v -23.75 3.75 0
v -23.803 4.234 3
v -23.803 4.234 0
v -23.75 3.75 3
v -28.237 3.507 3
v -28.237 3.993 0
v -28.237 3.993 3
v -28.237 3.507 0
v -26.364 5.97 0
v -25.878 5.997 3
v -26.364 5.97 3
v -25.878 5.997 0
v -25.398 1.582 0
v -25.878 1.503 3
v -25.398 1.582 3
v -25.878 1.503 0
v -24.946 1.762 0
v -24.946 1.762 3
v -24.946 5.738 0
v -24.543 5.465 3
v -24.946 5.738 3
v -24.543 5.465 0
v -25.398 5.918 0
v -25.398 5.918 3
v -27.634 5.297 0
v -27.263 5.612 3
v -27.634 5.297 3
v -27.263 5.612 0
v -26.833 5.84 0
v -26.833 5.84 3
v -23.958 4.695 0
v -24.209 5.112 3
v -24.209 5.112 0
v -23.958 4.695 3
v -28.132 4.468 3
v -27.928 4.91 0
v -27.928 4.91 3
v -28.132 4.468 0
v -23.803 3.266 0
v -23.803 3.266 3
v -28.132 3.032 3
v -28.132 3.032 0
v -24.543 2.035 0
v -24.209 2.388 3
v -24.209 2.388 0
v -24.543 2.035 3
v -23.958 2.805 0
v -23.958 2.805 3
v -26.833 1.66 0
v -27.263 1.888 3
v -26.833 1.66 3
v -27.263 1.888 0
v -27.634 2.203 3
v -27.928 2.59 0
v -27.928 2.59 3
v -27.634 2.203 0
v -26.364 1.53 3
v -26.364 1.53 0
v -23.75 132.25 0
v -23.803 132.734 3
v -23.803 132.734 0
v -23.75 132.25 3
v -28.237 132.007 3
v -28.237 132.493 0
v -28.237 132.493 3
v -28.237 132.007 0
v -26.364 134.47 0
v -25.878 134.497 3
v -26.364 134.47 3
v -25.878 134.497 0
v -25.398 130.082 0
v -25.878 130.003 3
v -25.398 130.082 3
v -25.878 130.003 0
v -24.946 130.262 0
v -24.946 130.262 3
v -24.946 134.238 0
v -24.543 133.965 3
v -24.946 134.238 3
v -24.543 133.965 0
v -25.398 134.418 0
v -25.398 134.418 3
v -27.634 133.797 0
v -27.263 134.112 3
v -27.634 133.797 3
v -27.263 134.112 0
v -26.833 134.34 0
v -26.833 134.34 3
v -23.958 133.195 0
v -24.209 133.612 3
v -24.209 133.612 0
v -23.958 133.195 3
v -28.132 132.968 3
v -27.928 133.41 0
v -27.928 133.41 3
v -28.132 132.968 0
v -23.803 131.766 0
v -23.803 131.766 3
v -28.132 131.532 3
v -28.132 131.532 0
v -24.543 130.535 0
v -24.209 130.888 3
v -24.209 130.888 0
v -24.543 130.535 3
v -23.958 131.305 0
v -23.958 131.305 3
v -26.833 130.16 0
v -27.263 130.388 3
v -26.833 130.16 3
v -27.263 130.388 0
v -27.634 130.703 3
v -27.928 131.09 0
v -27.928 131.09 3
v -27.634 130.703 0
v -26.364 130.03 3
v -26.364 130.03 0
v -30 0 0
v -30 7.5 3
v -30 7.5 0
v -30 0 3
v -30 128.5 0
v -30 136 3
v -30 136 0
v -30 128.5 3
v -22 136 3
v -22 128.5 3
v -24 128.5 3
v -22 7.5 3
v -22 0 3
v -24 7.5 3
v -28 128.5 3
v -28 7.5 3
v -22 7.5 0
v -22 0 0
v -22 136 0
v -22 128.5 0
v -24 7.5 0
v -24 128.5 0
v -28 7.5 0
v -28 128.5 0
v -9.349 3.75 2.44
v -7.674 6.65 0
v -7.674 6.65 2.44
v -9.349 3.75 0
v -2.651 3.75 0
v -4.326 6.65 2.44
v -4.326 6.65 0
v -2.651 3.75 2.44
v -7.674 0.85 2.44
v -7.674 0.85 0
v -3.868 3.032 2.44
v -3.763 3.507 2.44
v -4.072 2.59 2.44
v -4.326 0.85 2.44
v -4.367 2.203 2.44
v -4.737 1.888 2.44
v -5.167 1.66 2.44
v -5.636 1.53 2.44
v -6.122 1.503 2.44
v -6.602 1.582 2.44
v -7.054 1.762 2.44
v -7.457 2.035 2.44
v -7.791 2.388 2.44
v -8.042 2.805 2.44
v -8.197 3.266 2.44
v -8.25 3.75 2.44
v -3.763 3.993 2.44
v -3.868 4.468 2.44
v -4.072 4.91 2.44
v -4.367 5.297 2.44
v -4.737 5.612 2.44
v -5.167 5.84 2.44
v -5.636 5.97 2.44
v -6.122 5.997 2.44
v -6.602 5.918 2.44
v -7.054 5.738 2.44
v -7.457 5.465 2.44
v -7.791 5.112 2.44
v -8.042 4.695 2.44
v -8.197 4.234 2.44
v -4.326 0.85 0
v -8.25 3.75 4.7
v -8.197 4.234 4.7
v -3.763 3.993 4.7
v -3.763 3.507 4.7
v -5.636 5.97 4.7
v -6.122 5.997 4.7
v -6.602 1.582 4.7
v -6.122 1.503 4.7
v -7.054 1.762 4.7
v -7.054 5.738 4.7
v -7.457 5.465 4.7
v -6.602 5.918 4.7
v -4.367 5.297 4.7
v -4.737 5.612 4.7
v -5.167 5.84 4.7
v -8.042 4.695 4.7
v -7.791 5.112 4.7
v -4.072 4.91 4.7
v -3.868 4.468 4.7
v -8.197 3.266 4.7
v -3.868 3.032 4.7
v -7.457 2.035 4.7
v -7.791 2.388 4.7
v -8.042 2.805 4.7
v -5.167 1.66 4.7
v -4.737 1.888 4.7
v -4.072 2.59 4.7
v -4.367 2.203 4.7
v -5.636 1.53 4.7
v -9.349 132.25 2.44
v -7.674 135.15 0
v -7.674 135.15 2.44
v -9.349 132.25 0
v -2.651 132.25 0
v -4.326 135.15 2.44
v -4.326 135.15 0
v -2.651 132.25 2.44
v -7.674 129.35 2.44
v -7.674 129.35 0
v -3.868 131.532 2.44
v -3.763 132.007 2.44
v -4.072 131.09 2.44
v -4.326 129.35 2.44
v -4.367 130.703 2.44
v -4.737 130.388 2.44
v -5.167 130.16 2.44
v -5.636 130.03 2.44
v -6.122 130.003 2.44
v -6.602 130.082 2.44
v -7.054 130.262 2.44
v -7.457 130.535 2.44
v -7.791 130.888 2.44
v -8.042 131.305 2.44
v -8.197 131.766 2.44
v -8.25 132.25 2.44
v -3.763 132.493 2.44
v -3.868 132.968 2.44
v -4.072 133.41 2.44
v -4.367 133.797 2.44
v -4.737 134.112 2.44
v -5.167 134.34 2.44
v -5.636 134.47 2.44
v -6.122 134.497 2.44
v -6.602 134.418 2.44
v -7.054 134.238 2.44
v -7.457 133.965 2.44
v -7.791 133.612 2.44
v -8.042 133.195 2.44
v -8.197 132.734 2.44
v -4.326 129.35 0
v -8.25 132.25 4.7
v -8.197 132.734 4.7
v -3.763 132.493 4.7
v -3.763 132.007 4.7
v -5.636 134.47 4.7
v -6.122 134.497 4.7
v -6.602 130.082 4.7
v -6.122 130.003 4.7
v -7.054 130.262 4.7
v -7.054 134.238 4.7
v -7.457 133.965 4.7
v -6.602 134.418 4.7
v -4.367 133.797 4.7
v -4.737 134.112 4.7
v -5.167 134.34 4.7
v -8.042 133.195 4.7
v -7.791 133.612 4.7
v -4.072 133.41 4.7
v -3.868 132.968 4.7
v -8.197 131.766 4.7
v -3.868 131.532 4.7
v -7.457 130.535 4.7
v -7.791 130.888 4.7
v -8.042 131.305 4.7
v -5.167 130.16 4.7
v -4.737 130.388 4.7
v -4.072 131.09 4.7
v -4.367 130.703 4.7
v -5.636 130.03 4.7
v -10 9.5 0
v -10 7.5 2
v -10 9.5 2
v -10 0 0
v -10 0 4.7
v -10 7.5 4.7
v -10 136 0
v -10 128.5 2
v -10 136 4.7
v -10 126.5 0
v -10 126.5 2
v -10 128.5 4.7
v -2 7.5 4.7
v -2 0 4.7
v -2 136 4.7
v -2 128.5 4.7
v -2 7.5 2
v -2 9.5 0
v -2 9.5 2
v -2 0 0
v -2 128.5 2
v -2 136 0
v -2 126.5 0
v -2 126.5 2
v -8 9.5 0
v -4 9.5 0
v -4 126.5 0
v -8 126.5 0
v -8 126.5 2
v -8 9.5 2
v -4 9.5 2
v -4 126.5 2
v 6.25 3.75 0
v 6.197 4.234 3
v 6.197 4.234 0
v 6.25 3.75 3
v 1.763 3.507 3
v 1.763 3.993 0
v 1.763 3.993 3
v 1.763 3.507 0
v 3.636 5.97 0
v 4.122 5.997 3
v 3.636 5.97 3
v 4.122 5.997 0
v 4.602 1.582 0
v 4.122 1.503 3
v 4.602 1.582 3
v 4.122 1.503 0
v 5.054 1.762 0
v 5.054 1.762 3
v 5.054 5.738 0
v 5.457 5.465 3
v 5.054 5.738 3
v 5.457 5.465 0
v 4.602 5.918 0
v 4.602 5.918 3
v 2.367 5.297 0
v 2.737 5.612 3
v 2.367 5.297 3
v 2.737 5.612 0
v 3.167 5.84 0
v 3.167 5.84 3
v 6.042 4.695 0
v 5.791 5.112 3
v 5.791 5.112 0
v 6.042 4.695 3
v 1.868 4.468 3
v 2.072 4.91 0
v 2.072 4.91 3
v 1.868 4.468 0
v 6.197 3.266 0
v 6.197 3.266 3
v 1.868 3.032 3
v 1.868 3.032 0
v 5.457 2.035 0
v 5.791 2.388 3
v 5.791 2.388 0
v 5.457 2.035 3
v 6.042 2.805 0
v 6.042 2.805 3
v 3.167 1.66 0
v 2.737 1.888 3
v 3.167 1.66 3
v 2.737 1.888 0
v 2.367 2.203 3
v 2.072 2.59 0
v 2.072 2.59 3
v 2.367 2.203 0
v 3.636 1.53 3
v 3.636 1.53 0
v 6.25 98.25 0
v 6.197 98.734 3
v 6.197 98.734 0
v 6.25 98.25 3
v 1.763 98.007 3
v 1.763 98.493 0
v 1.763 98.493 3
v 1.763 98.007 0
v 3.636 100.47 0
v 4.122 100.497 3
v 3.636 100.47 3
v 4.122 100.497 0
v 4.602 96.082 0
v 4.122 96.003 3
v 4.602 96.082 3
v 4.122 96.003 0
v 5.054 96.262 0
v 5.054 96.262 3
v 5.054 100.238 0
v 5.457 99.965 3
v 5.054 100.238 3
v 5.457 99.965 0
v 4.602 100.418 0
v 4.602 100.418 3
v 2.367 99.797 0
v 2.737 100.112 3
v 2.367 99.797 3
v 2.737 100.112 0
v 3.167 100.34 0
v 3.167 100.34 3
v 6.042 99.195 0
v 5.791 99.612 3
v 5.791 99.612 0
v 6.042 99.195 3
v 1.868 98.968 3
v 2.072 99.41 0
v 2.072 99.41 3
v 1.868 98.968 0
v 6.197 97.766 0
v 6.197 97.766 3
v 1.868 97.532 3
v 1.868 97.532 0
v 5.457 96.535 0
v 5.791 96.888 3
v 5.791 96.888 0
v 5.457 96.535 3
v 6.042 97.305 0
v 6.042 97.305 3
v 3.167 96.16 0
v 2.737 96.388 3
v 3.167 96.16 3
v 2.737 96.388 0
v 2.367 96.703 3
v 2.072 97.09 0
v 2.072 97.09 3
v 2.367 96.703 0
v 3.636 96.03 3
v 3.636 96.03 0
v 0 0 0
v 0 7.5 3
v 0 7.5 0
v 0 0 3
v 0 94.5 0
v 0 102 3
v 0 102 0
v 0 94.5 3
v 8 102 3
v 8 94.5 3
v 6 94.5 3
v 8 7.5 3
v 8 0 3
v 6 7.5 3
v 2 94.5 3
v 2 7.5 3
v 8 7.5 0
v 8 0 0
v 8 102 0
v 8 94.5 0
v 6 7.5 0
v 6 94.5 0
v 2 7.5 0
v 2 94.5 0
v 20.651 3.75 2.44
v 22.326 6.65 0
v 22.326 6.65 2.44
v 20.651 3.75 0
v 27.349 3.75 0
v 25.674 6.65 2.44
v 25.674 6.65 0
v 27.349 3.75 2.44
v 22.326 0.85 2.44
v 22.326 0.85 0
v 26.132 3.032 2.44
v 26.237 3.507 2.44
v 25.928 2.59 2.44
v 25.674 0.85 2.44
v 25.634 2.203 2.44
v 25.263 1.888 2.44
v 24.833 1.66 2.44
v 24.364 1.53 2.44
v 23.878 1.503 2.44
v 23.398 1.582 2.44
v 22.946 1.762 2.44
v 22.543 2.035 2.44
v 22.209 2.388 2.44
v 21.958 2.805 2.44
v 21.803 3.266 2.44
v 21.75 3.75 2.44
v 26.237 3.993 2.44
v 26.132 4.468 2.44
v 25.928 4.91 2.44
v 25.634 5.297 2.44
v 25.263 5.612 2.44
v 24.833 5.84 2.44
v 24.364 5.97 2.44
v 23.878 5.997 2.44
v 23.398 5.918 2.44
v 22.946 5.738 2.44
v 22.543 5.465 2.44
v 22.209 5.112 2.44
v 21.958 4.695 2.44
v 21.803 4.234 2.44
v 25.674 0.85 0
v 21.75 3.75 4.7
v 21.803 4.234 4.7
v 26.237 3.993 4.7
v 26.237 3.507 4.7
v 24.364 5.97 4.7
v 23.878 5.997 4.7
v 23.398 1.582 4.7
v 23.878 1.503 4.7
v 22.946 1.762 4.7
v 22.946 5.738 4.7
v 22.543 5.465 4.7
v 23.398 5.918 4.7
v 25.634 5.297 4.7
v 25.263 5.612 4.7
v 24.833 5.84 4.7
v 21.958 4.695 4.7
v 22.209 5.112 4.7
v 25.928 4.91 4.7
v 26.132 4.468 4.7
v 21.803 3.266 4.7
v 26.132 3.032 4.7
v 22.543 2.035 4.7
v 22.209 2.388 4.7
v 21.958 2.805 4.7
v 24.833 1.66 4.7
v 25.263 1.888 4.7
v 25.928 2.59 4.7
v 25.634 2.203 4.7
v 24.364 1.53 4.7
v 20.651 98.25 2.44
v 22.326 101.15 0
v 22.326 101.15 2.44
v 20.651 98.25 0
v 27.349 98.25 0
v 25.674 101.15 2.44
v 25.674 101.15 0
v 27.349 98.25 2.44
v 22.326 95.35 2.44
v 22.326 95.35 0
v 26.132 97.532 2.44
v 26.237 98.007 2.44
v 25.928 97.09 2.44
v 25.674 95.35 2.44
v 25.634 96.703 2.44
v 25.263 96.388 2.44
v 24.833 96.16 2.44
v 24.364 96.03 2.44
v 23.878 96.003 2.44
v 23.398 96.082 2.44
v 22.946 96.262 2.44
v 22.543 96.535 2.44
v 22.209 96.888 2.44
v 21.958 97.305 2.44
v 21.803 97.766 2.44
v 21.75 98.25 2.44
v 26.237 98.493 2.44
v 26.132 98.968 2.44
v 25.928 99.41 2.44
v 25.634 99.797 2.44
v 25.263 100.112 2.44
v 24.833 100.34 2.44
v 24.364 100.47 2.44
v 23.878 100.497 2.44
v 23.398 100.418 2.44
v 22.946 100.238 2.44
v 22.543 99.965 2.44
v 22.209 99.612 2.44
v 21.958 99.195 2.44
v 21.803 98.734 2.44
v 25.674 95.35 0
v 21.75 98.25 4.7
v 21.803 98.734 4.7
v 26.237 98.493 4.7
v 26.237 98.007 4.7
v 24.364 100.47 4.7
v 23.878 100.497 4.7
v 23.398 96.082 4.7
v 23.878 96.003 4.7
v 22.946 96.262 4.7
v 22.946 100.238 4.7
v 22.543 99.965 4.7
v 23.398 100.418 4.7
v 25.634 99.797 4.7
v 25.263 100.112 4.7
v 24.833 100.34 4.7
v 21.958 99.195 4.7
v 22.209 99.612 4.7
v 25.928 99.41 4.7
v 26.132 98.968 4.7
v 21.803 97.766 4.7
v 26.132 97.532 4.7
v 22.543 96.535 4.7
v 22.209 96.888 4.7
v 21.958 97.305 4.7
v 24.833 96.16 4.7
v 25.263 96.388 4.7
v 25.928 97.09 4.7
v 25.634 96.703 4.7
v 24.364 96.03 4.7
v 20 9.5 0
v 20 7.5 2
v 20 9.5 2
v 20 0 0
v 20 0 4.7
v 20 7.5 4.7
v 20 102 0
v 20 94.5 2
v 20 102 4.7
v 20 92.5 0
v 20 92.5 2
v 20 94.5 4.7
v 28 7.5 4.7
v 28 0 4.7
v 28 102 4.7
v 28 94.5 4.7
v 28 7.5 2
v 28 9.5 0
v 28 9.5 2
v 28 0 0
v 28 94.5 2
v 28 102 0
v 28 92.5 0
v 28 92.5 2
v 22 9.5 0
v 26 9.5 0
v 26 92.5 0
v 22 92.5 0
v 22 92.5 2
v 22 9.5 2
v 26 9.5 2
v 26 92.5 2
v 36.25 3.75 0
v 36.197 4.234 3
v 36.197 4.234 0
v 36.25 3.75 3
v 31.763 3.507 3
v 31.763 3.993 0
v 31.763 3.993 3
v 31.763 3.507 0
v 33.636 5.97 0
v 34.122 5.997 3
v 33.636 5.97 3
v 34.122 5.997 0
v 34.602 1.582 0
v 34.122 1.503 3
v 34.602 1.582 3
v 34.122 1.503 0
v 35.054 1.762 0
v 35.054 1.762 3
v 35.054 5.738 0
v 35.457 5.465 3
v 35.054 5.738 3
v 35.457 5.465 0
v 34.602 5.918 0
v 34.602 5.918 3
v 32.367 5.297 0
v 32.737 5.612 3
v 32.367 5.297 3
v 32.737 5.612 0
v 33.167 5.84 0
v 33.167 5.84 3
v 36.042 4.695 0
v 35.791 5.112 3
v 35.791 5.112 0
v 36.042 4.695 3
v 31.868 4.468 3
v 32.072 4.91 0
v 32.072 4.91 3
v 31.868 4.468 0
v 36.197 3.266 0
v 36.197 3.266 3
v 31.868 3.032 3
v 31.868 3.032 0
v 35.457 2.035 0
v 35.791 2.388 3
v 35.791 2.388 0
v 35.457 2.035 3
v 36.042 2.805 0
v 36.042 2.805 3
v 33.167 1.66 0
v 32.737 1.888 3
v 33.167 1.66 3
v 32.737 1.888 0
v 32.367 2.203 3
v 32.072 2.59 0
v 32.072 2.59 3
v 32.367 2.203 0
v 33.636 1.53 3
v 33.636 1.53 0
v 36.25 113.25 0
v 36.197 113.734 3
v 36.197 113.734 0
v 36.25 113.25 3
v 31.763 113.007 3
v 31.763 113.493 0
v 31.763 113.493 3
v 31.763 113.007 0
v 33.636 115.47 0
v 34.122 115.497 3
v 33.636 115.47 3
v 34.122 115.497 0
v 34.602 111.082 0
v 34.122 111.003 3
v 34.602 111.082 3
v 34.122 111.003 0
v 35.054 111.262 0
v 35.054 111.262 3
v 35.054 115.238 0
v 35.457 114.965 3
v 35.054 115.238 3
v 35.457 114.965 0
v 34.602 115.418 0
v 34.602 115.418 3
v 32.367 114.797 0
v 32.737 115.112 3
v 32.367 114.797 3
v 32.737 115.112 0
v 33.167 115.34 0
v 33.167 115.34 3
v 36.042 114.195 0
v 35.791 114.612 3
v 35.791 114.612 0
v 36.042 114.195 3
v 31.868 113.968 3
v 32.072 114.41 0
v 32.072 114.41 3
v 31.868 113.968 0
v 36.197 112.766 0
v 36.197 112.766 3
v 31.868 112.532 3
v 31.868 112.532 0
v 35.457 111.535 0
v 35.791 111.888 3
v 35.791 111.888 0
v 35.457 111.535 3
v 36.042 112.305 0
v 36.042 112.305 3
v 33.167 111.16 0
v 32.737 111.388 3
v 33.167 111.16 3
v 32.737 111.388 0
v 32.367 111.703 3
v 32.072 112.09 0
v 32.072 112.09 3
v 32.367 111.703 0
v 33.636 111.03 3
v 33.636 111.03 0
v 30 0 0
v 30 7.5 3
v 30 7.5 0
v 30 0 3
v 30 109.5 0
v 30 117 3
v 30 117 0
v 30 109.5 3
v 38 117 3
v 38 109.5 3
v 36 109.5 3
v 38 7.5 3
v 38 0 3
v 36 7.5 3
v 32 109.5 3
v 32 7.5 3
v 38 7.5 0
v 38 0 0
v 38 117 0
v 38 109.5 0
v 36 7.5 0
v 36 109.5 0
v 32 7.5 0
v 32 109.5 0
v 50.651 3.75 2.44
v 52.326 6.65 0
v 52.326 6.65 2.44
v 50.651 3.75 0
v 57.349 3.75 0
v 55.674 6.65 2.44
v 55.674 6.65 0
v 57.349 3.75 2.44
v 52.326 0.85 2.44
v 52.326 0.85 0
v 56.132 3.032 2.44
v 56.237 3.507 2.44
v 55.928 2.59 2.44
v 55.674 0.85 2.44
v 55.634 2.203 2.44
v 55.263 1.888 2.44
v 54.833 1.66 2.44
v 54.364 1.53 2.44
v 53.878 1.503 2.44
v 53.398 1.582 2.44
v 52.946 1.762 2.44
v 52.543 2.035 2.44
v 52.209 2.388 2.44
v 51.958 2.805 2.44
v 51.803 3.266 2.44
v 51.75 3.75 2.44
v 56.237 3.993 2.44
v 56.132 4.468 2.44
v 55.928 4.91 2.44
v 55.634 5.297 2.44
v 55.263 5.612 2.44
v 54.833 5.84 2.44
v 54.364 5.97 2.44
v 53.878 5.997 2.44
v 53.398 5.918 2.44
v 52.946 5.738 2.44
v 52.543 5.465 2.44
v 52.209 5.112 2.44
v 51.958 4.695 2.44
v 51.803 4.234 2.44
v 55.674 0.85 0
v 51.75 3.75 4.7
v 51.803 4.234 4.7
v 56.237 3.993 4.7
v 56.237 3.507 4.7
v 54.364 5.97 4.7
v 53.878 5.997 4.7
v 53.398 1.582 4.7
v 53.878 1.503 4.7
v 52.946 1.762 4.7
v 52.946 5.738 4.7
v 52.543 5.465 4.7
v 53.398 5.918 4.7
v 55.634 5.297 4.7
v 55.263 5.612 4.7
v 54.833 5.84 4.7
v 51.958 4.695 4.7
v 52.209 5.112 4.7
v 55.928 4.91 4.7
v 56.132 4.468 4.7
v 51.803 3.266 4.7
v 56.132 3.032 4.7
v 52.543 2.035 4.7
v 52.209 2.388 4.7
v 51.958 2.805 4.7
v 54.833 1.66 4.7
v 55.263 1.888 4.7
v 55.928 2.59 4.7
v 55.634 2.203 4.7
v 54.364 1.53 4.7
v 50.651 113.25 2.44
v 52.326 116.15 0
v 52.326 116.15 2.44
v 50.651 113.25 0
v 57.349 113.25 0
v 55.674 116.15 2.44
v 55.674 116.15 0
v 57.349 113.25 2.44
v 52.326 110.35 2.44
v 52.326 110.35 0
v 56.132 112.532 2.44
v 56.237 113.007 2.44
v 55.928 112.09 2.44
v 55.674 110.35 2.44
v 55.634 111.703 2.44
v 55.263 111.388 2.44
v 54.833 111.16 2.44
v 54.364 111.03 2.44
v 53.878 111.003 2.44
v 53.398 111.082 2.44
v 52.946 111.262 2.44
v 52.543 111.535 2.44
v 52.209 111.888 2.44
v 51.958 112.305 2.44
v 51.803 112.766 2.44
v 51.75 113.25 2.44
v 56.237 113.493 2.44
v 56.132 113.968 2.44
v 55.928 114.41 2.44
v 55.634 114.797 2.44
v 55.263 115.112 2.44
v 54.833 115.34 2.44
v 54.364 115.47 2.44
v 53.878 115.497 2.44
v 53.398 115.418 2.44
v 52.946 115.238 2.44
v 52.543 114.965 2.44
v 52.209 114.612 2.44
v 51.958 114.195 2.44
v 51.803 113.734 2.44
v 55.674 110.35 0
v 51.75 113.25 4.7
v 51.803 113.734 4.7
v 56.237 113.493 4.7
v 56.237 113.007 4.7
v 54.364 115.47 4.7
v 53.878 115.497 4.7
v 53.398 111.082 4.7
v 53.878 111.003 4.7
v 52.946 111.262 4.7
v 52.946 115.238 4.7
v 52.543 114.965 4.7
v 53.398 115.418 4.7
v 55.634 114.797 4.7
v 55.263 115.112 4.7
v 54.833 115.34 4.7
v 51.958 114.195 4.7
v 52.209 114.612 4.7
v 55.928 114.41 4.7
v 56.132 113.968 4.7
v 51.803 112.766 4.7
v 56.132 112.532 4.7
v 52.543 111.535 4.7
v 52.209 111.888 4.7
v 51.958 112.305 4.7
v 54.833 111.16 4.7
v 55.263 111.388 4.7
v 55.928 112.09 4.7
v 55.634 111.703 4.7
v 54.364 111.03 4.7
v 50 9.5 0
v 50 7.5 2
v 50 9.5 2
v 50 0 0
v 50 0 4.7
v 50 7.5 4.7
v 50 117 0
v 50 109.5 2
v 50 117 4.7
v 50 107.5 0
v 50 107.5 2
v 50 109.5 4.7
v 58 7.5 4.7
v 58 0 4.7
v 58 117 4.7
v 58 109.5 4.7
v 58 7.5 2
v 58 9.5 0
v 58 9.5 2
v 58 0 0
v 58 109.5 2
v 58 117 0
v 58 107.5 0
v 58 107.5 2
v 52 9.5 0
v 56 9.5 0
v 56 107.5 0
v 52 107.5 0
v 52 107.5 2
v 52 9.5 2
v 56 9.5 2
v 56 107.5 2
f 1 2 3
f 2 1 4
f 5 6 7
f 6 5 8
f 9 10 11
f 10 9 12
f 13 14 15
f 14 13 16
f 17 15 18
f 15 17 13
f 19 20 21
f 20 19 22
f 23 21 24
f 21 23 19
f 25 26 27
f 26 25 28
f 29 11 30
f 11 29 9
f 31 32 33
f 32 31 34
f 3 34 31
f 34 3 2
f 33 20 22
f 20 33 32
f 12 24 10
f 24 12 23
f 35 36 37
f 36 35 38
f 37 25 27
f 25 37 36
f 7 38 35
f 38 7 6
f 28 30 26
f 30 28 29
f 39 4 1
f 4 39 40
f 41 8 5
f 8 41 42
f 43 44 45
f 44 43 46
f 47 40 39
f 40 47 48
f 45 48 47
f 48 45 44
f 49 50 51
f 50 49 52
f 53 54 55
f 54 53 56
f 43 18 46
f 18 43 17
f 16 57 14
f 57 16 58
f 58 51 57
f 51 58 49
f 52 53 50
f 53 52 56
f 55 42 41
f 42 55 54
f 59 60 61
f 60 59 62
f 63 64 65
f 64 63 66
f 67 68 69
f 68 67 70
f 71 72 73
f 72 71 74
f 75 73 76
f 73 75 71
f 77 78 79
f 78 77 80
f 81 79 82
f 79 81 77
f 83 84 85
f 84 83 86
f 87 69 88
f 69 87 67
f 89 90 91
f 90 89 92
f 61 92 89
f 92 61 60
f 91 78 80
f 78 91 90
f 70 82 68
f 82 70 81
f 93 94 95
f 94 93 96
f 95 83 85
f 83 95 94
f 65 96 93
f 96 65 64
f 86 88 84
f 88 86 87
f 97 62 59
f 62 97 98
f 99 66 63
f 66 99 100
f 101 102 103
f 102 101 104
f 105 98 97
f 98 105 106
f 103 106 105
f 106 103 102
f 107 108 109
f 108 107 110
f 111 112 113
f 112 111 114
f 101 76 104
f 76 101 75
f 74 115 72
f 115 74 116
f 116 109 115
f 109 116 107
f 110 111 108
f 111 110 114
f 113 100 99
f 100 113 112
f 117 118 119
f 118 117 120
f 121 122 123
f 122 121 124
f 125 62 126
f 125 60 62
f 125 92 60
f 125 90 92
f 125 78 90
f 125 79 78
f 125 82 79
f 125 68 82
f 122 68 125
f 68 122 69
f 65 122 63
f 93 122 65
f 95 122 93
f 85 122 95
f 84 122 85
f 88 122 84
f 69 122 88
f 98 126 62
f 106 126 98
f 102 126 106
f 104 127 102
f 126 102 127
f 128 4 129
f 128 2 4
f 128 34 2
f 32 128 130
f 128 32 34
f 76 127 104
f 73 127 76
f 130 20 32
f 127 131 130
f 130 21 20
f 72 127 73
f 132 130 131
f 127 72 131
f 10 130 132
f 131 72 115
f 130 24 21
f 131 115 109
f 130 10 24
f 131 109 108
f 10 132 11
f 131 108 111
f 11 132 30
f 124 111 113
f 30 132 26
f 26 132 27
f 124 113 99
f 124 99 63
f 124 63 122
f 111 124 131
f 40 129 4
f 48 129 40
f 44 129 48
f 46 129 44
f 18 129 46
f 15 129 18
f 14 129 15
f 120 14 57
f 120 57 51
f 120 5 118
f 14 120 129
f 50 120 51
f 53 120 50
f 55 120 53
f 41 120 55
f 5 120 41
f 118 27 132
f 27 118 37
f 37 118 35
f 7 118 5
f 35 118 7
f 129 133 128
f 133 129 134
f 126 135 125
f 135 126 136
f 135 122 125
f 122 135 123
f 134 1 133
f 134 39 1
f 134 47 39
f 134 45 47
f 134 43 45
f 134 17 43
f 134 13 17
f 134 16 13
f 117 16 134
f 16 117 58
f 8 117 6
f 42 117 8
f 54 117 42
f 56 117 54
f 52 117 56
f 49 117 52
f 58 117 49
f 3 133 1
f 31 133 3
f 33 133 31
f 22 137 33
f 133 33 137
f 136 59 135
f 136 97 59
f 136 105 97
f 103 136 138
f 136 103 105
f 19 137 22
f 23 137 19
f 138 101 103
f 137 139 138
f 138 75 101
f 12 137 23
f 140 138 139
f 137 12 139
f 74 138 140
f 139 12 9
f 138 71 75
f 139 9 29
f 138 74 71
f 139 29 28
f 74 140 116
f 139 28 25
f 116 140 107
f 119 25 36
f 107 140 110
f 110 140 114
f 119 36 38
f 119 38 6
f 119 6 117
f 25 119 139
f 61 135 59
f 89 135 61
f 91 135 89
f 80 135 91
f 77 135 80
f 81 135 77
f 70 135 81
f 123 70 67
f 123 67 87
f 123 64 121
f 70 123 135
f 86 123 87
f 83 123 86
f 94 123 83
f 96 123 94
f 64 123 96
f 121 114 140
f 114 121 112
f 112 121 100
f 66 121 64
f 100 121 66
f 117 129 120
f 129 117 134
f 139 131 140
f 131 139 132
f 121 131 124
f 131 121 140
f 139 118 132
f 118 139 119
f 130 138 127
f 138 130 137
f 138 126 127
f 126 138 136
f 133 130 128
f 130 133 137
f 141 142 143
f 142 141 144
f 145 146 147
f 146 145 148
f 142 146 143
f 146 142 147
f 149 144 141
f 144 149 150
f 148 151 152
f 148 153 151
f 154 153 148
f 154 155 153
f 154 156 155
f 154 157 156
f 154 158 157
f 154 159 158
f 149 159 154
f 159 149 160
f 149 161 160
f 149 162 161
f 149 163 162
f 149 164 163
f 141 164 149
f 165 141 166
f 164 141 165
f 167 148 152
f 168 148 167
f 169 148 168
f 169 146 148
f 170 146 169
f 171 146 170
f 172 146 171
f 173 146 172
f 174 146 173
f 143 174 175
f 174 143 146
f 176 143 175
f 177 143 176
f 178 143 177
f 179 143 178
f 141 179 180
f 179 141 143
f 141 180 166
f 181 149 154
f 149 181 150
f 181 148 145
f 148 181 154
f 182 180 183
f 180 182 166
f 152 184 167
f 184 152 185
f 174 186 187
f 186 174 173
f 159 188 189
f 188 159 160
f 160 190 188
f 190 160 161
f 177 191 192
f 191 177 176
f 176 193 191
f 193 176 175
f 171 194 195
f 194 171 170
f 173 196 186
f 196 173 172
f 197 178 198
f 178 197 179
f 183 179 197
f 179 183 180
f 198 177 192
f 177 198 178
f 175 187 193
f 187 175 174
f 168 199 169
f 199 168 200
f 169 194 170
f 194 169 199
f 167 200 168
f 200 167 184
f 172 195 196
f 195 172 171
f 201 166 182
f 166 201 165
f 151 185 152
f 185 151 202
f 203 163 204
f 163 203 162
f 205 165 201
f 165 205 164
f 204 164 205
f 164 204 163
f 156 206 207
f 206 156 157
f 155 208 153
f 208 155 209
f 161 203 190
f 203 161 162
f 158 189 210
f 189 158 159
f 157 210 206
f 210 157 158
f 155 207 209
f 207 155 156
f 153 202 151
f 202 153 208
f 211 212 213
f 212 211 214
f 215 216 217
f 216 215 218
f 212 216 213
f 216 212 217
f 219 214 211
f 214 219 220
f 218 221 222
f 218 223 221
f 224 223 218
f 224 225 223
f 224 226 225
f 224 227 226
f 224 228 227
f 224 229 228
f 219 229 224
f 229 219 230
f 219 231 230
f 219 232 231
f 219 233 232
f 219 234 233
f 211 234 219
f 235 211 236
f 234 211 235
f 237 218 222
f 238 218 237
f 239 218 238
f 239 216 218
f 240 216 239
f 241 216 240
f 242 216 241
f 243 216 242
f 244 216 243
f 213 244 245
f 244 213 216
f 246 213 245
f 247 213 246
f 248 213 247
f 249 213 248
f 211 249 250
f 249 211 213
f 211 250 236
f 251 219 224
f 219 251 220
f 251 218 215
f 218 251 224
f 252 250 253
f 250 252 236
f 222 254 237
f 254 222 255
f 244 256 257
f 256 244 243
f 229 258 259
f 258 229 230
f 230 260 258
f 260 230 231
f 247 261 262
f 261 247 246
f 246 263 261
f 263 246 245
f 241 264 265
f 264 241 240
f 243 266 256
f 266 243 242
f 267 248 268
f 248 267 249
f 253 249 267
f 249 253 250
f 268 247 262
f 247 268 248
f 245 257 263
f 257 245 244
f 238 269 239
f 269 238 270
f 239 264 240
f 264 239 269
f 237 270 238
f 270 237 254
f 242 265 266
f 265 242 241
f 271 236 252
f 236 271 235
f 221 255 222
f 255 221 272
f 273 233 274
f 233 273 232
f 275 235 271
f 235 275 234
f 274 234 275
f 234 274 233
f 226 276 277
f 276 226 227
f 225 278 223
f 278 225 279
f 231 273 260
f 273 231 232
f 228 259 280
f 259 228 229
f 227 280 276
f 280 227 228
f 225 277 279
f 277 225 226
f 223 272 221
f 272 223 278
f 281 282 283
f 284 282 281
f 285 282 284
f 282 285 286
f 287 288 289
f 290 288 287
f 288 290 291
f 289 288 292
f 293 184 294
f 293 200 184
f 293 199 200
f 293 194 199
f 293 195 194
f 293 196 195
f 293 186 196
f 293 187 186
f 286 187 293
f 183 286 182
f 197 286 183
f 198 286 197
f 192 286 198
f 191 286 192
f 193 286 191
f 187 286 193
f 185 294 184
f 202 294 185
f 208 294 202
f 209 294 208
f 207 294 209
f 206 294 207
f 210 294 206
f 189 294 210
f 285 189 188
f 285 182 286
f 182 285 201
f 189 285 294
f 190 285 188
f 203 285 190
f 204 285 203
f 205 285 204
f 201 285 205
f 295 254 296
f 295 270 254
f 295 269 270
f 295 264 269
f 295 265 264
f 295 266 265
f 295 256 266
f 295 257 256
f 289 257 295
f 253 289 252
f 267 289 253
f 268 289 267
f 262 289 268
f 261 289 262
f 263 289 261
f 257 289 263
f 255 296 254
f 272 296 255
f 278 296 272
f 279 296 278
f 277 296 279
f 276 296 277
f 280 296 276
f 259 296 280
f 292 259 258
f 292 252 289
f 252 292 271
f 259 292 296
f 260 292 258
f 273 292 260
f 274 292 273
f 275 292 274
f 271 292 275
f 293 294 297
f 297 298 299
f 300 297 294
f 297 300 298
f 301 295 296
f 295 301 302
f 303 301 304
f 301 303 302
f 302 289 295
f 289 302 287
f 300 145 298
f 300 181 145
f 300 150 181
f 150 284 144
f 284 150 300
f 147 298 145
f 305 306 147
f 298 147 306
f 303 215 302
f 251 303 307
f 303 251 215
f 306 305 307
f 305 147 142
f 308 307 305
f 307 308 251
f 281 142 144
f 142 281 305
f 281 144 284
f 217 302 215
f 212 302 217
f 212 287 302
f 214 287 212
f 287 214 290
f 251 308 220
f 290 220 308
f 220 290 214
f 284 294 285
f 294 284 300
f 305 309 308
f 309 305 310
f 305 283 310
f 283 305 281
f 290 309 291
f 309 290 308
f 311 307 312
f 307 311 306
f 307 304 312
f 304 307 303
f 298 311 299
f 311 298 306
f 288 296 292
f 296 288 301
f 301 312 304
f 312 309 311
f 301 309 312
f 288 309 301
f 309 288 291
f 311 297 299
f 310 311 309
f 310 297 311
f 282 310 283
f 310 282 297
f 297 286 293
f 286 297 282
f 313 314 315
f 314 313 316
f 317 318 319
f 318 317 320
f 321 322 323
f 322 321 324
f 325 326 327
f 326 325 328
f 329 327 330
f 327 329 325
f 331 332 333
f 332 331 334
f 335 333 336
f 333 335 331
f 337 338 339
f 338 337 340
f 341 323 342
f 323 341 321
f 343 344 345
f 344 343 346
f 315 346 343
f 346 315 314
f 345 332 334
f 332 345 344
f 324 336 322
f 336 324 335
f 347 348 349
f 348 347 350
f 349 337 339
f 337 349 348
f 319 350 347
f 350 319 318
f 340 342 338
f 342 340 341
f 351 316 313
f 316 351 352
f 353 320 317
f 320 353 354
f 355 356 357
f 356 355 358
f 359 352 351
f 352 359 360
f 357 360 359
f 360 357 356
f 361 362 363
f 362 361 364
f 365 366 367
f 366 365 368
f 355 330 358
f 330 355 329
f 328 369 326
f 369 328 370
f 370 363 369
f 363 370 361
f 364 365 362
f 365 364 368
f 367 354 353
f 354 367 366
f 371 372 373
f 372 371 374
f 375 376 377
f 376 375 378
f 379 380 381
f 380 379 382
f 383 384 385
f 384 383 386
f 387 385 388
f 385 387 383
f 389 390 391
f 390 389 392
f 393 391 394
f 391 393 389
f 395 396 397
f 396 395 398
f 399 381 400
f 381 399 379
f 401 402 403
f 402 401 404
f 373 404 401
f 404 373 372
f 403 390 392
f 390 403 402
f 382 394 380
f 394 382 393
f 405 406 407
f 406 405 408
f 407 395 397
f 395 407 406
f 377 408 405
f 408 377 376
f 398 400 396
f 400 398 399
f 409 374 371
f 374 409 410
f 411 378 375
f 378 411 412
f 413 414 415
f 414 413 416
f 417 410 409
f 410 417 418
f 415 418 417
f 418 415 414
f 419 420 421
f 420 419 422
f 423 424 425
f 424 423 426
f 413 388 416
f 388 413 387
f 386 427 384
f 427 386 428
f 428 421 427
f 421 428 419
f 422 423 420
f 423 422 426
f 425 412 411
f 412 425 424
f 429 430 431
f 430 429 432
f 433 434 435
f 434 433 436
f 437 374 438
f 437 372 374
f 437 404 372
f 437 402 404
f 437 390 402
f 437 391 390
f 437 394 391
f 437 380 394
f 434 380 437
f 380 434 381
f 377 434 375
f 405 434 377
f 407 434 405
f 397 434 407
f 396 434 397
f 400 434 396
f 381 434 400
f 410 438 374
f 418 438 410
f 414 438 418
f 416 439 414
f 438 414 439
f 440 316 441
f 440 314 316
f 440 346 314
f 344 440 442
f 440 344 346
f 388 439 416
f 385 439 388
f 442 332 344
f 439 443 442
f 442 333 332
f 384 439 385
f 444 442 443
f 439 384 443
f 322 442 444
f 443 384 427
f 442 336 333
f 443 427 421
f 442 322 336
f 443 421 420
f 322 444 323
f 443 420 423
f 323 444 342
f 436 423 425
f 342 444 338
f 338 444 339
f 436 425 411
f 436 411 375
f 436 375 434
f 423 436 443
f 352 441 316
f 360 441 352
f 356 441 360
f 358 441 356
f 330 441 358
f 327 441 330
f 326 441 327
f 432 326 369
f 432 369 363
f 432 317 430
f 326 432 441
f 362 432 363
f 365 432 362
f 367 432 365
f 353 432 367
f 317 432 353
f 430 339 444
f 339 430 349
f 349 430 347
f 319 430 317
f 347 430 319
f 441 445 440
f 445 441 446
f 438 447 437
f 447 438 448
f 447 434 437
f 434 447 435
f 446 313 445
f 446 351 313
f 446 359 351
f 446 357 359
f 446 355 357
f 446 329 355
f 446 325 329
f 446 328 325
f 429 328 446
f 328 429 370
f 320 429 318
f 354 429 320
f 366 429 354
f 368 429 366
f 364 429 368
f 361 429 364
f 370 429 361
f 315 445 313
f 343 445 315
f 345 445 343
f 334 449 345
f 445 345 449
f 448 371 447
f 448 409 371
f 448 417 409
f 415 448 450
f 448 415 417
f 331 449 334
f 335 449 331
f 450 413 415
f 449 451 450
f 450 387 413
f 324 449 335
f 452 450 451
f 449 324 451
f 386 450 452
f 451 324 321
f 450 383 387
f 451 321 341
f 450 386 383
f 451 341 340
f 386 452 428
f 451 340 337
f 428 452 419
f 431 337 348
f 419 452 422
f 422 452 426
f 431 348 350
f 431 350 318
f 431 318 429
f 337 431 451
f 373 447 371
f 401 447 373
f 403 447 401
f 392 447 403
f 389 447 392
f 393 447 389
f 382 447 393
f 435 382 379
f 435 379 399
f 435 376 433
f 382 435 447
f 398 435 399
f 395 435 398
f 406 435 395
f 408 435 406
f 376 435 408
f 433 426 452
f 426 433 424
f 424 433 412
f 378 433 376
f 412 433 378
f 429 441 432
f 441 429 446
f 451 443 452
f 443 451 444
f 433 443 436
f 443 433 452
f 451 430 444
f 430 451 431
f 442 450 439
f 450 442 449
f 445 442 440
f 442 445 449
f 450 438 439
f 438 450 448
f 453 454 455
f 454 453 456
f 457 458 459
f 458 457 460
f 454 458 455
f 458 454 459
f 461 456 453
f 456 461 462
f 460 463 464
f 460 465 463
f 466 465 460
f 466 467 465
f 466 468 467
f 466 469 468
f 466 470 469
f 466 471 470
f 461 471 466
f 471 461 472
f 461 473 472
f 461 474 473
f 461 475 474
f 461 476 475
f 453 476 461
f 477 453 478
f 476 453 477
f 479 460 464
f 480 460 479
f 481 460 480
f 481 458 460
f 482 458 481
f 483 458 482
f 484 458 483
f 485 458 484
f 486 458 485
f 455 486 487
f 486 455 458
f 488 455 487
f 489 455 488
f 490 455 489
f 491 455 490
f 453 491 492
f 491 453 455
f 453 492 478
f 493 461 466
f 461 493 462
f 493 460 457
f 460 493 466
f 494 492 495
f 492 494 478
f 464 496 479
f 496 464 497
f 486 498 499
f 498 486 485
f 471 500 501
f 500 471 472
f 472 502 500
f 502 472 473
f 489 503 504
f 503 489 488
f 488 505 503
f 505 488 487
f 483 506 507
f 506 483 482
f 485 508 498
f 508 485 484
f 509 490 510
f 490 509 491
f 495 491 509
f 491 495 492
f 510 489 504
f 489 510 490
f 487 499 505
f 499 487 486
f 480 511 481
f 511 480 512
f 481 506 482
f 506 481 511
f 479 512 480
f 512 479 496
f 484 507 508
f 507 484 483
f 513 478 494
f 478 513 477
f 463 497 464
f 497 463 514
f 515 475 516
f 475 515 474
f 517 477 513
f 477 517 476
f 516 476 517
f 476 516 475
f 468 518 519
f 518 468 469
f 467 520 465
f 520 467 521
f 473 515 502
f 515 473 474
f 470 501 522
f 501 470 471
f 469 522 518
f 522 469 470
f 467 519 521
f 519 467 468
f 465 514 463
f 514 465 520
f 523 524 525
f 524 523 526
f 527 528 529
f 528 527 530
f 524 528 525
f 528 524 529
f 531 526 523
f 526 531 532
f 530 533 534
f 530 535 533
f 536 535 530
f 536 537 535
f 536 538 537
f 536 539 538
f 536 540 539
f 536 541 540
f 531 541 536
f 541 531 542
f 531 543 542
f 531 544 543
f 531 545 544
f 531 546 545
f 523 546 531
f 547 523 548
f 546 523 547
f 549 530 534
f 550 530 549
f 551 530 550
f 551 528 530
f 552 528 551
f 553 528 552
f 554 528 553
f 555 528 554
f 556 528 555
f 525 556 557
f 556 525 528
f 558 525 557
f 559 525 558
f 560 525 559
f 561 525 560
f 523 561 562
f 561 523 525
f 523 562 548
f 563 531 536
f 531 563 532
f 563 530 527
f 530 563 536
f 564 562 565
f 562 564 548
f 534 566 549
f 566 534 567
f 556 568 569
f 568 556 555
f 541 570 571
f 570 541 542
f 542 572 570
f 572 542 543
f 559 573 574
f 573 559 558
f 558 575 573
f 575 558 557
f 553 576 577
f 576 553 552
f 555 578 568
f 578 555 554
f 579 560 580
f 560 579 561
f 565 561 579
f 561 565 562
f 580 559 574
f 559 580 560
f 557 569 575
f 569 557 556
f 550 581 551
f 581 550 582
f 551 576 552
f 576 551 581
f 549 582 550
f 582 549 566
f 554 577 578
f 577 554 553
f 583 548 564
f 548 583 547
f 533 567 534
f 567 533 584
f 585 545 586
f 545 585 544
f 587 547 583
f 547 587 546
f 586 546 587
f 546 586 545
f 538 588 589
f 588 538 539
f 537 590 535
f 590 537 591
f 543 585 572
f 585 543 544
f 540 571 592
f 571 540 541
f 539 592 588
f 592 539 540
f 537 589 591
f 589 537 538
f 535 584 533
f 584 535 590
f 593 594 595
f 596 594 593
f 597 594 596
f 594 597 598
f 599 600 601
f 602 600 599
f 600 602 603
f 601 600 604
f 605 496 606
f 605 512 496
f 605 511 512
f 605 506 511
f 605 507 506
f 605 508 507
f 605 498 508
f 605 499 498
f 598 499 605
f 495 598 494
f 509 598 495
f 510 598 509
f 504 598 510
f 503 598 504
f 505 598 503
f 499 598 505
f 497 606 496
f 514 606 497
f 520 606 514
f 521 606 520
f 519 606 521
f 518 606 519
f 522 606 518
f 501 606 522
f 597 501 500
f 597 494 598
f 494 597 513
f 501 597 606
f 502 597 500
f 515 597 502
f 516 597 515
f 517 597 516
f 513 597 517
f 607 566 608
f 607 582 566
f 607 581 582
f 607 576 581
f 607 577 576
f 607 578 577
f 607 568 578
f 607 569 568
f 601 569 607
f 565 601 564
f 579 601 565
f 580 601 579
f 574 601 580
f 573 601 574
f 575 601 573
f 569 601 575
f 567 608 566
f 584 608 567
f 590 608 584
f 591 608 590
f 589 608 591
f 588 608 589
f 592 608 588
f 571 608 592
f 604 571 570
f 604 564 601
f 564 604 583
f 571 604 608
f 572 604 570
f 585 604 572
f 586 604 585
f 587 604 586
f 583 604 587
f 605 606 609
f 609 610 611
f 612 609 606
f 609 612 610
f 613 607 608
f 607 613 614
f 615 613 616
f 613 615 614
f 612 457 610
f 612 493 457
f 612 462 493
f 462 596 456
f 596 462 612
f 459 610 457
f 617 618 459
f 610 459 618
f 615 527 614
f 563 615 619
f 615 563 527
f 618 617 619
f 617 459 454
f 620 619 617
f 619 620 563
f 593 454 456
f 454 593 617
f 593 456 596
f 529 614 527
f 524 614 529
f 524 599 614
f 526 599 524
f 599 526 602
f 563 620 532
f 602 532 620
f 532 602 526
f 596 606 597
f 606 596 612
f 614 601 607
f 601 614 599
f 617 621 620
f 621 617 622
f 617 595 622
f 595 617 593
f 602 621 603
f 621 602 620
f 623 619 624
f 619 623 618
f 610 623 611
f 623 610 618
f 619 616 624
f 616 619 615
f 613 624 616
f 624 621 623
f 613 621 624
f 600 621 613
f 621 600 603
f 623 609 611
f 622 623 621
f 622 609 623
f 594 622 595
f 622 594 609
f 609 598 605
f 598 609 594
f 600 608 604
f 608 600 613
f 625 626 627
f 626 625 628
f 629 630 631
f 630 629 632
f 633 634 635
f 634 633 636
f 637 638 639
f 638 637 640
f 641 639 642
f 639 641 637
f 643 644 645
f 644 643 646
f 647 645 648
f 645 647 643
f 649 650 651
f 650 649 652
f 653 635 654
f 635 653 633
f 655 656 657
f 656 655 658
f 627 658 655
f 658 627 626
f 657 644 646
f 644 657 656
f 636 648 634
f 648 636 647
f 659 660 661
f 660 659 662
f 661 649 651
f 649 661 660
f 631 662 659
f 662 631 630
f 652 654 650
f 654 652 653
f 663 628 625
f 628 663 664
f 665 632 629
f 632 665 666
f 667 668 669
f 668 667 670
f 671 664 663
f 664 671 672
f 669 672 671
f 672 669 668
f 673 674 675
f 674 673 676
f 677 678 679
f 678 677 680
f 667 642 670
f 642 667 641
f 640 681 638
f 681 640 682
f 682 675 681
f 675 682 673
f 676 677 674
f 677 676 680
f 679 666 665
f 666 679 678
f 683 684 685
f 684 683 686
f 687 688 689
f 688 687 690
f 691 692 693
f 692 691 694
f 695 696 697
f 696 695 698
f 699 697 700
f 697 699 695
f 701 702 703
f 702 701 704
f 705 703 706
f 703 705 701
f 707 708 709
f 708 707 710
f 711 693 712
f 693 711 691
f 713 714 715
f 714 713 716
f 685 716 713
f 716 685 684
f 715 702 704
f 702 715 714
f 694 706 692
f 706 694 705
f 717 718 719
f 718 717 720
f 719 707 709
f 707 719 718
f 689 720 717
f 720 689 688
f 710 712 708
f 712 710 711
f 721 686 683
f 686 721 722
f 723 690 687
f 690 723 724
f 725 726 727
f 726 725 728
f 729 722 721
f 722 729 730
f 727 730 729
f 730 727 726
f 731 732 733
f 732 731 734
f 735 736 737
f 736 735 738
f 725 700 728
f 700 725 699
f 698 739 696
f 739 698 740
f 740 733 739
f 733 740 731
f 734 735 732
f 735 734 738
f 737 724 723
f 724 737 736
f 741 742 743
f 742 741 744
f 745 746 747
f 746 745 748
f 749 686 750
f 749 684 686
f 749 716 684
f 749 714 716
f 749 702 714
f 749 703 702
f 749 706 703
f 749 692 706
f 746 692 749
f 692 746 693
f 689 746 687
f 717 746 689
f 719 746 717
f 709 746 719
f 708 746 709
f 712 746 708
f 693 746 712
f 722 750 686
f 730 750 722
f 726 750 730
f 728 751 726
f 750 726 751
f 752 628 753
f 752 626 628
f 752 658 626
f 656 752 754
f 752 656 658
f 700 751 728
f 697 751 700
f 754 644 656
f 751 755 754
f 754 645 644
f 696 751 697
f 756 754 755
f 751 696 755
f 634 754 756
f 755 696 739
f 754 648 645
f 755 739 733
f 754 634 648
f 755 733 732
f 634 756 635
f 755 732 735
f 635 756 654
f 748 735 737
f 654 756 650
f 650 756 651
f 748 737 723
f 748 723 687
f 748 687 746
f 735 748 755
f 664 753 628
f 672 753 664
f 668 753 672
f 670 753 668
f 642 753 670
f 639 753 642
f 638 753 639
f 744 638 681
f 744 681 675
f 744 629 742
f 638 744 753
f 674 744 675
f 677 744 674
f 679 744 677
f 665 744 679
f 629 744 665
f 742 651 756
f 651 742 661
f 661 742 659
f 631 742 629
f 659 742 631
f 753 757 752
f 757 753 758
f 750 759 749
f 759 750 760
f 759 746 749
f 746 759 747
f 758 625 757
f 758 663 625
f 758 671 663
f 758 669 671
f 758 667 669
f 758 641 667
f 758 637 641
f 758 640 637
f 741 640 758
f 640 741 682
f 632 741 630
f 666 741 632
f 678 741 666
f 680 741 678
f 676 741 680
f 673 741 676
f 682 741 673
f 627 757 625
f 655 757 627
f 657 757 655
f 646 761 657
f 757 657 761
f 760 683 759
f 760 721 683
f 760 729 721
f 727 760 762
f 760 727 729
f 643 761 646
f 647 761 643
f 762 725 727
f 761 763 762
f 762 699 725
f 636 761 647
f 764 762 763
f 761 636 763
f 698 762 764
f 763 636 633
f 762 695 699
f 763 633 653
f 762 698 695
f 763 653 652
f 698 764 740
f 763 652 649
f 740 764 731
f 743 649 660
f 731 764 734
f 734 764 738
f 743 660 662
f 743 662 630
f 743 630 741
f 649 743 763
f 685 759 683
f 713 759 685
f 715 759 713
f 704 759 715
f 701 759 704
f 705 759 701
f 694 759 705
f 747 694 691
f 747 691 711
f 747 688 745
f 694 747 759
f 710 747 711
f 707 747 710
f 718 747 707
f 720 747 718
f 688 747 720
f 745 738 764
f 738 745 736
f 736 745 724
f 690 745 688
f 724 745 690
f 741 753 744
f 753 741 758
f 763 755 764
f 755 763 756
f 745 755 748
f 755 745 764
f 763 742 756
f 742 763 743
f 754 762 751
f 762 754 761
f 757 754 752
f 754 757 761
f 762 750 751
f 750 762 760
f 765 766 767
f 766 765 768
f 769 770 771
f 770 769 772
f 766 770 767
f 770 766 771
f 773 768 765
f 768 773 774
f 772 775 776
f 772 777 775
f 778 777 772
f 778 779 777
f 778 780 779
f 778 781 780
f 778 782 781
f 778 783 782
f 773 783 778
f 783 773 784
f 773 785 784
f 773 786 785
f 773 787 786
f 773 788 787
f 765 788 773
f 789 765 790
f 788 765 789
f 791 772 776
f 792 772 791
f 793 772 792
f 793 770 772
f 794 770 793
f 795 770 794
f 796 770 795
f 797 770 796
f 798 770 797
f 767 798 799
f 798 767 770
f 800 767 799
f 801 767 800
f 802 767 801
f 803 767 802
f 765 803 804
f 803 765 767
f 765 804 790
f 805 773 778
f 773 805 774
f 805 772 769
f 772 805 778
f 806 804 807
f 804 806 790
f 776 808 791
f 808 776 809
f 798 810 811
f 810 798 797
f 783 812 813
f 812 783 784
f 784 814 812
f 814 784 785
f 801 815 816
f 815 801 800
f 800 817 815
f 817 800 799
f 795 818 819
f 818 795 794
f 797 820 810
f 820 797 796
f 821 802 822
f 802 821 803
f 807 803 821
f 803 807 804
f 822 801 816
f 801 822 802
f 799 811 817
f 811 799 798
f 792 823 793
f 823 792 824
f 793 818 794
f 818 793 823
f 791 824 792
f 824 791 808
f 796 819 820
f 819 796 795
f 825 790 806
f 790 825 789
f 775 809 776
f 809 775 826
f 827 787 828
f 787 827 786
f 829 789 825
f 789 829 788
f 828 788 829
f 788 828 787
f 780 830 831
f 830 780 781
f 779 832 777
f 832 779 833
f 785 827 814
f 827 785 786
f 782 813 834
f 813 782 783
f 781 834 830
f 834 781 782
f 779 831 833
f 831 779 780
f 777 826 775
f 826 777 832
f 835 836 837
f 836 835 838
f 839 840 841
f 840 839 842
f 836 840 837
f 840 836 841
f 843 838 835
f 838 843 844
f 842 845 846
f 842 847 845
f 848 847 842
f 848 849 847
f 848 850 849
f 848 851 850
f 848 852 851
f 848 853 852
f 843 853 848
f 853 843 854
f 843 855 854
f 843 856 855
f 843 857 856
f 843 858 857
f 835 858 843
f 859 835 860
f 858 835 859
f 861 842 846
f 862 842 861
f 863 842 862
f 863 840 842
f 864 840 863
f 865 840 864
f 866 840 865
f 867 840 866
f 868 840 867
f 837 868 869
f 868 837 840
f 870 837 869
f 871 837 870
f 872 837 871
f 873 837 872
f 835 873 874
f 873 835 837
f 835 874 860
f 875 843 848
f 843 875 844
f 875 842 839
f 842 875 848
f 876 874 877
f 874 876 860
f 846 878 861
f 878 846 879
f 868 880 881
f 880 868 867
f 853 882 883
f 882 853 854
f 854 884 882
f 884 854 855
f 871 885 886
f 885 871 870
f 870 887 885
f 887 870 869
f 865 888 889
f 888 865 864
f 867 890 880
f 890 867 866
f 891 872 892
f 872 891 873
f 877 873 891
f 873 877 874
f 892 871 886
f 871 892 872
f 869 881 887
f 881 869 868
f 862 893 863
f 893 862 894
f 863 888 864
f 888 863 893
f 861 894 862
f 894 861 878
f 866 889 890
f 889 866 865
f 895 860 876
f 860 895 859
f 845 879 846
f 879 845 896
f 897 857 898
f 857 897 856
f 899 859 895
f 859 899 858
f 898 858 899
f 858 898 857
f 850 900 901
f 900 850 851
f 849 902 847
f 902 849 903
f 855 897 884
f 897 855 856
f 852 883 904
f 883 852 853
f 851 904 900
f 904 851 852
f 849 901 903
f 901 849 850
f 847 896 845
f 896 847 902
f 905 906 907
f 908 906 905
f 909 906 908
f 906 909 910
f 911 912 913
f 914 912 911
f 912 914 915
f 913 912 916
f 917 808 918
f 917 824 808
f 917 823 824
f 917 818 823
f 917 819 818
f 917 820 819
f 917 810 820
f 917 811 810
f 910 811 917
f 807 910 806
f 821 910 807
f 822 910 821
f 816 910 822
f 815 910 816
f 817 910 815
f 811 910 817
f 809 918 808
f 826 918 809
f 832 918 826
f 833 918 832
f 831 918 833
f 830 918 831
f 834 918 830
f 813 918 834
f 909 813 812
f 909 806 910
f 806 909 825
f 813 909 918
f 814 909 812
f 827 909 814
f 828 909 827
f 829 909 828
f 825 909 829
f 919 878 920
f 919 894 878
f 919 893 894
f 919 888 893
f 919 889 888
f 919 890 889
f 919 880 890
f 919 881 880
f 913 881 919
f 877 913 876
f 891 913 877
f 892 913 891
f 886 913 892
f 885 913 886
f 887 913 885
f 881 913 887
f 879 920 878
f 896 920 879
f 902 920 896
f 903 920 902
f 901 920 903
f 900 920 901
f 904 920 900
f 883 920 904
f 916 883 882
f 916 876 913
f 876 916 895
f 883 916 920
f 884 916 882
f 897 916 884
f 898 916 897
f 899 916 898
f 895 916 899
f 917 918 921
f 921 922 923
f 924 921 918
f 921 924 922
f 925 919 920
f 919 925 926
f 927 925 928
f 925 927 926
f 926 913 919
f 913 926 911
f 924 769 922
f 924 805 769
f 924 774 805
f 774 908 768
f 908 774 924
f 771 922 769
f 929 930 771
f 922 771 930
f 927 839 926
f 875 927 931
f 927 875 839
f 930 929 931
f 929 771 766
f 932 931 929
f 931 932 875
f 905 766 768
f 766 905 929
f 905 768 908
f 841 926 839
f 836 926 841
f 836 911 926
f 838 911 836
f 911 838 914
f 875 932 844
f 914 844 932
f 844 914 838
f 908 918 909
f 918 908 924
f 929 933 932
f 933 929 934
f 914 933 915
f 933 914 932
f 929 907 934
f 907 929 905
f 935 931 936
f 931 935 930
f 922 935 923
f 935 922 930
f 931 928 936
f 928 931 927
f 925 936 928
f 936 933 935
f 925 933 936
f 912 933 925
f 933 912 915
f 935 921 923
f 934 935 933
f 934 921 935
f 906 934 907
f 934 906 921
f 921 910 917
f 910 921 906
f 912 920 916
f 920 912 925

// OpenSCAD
// file: lib/Metric/Polygon.scad
//============================================================
// OpenSCAD
// Regular Convex Polygon Library
// Last Modified : 2015/10/28
//============================================================
/*

	Definition

	N = Number of Side N >=3
	A = apothem
		radius of inside circle
	R = circumradius
		Radius of outside circle
	S = Side
		Lenght of a side

	Build polygon with the Apothem :
	N and A is known
	Need to calculate S then R
	use $fn

	Build Polygon with Circumradius
	N and R known
	use $fn

	Build Polygon with Side
	N and S Known
	Need to calculate R and optionaly A
	use $fn	

	TO DO
    Control result

	For more information :
	http://en.wikipedia.org/wiki/Regular_polygon

*/

//------------------------------------------------------------
//
//------------------------------------------------------------
Demo();

//------------------------------------------------------------
// Demo
//------------------------------------------------------------
module Demo()
{
	inch = 25.4;	// 25.4mm
	// A = apothem - it's a RADIUS !
	// For a bolt of 4 inches spécify A=2*inch
	//Polygon(N=7,A=2*inch,h=0);	// 4 inches radius Polygon
	//Polygon(N=7,A=49.8365,h=0);
	//Trigon(A=50,h=10);			// N=3
	//Dodecagon(A=50,h=0);			// N=12

    //rotate([0,0,360/7/2])
	//Nonagon(R=55.3144,h=10,debug=true);

	//Polygon(N=6,A=60,h=0,debug=false);
	//Polygon(N=6,A=60,h=5,debug=true);

    Enneagon(A=50);
}


//------------------------------------------------------------
// Polygon : 
//------------------------------------------------------------
module Polygon(N=3,A=0,R=0,S=0,h=0,debug=false)
{
	N = ( N < 3 ? 3 : N );

	angle = 360/N;
	angleA = angle/2;

	if (debug)
	{
		echo("N = ", N);
		echo("A = ", A);
		echo("S = ", S);
		echo("R = ", R);
	}

	if ( A > 0 )		// if A assign R and S
	{
        S = 2 * A * tan(angleA);							// assign
		//R = (S/2) / sin(angleA);						// no assign ???
		R = ( A * tan(angleA) ) / sin(angleA);		// asign
		_Build_Polygon(N=N,R=R,h=h);
		if (debug)
		{
			echo("aN = ", N);
			echo("aA = ", A);
			echo("aS = ", S);
			echo("aR = ", R);
			#cylinder(r=A,h=h+1,center=true,$fn=150);
			%cylinder(r=R,h=h+1,center=true,$fn=150);
		}
	}
	else
	{
		if ( S > 0 )		// if S assign R and A
		{
			R = (S/2) / sin(angleA);			// assign
			A = S / ( 2 * tan(angleA) );		// assign
            _Build_Polygon(N=N,R=R,h=h);
			if (debug)
			{
				echo("sN = ", N);
				echo("sA = ", A);
				echo("sS = ", S);
				echo("sR = ", R);
				#cylinder(r=A,h=h+1,center=true,$fn=150);
				%cylinder(r=R,h=h+1,center=true,$fn=150);
			}
		}
		else
		{
			if ( R == 0 )		// default
			{
				S = 2 * R * sin(angleA);			// no assign ???
				A = S / ( 2 * tan(angleA) );		// no assign ???
				_Build_Polygon(N=N,h=h);
				if (debug)
				{
					echo("0N = ", N);
					echo("0A = ", A);
					echo("0S = ", S);
					echo("0R = ", R);
					#cylinder(r=A,h=h+1,center=true,$fn=150);
					%cylinder(r=R,h=h+1,center=true,$fn=150);
				}
			}
			else		// build with R
			{
				S = 2 * R * sin(angleA);
				A = S / ( 2 * tan(angleA) );			// no assign ???
				//A = R * ( sin(angleA) / tan(angleA) )	// no assign ???
				_Build_Polygon(N=N,R=R,h=h);
				if (debug)
				{
					echo("rN = ", N);
					echo("rA = ", A);
					echo("rS = ", S);
					echo("rR = ", R);
					%cylinder(r=R,h=h+1,center=true,$fn=150);
				}
			}
		}
	}

	if (debug)
	{
		echo("fN = ", N);
		echo("fA = ", A);
		echo("fS = ", S);
		echo("fR = ", R);
	}
}

//------------------------------------------------------------
// Build
//------------------------------------------------------------
module _Build_Polygon(N=3,R=1,h=0)
{
	if (h > 0)
	{
		// 3D primitive h>0
		cylinder(r=R,h=h,$fn=N,center=true);
	}
	else
	{
		// 2D primitive h=0
		circle(r=R,$fn=N,center=true);
	}
}

//------------------------------------------------------------
// Building lots from N=3, N=N+1
// http://en.wikipedia.org/wiki/Polygon
//------------------------------------------------------------

// 3 sides
module Trigon(A=0,R=0,S=0,h=0,debug=false)
	{Polygon(N=3,A=A,R=R,S=S,h=h,debug=debug);}

module Triangle(A=0,R=0,S=0,h=0,debug=false)
	{Polygon(N=3,A=A,R=R,S=S,h=h,debug=debug);}

// 4 sides
module Tetragon(A=0,R=0,S=0,h=0,debug=false)
	{Polygon(N=4,A=A,R=R,S=S,h=h,debug=debug);}

module Quadrilateral(A=0,R=0,S=0,h=0,debug=false)
	{Polygon(N=4,A=A,R=R,S=S,h=h,debug=debug);}

module Quadrangle(A=0,R=0,S=0,h=0,debug=false)
	{Polygon(N=4,A=A,R=R,S=S,h=h,debug=debug);}

// 5 sides
module Pentagon(A=0,R=0,S=0,h=0,debug=false)
	{Polygon(N=5,A=A,R=R,S=S,h=h,debug=debug);}

// 6 sides
module Hexagon(A=0,R=0,S=0,h=0,debug=false)
	{Polygon(N=6,A=A,R=R,S=S,h=h,debug=debug);}

// 7 sides
module Heptagon(A=0,R=0,S=0,h=0,debug=false)
	{Polygon(N=7,A=A,R=R,S=S,h=h,debug=debug);}

// 8 sides
module Octagon(A=0,R=0,S=0,h=0,debug=false)
	{Polygon(N=8,A=A,R=R,S=S,h=h,debug=debug);}

// 9 sides
module Enneagon(A=0,R=0,S=0,h=0,debug=false)
	{Polygon(N=9,A=A,R=R,S=S,h=h,debug=debug);}

module Nonagon(A=0,R=0,S=0,h=0,debug=false)
	{Polygon(N=9,A=A,R=R,S=S,h=h,debug=debug);}

// 10 sides
module Decagon(A=0,R=0,S=0,h=0,debug=false)
	{Polygon(N=10,A=A,R=R,S=S,h=h,debug=debug);}

// 11 sides
module Handecagon(A=0,R=0,S=0,h=0,debug=false)
	{Polygon(N=11,A=A,R=R,S=S,h=h,debug=debug);}

// 12 sides
module Dodecagon(A=0,R=0,S=0,h=0,debug=false)
	{Polygon(N=12,A=A,R=R,S=S,h=h,debug=debug);}

// ...

// 100 sides
module Hectogon(A=0,R=0,S=0,h=0,debug=false)
	{Polygon(N=100,A=A,R=R,S=S,h=h,debug=debug);}

//==EOF=======================================================
// file: lib/Metric/Bolt.scad
include <defaults.scad>;

module Bolt(
  l=10,
  h_head=5,
  d_head=10,
  d=5,
  tolerance=default_metric_tolerance,
  inset=1,
  extra_tolerance=default_bolt_extra_tolerance
) {
  r_head = d_head/2;
  r = d/2;

  translate([0, 0, -inset*h_head]){
    translate([0, 0, 0.01])
    cylinder(r=r_head+tolerance*2, h=h_head);

    translate([0, 0, -l+0.01])
    cylinder(r=r+tolerance*2+extra_tolerance, h=l+0.01);
  }
}
// file: lib/Metric/Nut.scad
include <defaults.scad>;
use <Polygon.scad>;

module Nut(
  h=10,
  l=10,
  A=10,
  d=5,
  tolerance=default_metric_tolerance,
  extra_tolerance=default_bolt_extra_tolerance,
  inset=1
) {
  r = d/2;  
  translate([0, 0, -h/2+0.01+((1-inset)*h)])
  Hexagon(
    A=A+tolerance,
    h=h+tolerance*2
  );
    
    translate([0, 0, -l+0.01])
    cylinder(r=r+tolerance*2+extra_tolerance, h=l+0.01);
}
// file: lib/Metric/defaults.scad
default_metric_tolerance = 0.2;
default_bolt_extra_tolerance = 0.35;
// file: lib/Metric/M3.scad
include <defaults.scad>;
use <Nut.scad>;
use <Bolt.scad>;

h_nut_m3 = 2.25;
a_nut_m3 = 5.4;
A_nut_m3 = a_nut_m3 / 2;
d_head_m3 = 5.4;
h_head_m3 = 3.2;
d_m3 = 3;

module NutM3(tolerance=default_metric_tolerance, h=h_nut_m3, inset=1,l=10) {
  Nut(h=h, l=l,A=A_nut_m3,d=d_m3, tolerance=tolerance, inset=inset);
}

module BoltM3(l=10, tolerance=default_metric_tolerance, inset=1) {
  Bolt(l=l, h_head=h_head_m3, d_head=d_head_m3, d=d_m3, tolerance=tolerance, inset=inset);
}
// main file
use <buttons.scad>;
PCBThickness = 1.6;


translate([-30,0,0])
    mountPCBConnectorSplit([40,120,PCBThickness]);         
translate([0,0,0])
    rotate([0,0,0])
    mountPCBConnectorSplit([40,86,PCBThickness]);         
translate([30,0,0])
    rotate([0,0,0])
    mountPCBConnectorSplit([40,101,PCBThickness]);     
